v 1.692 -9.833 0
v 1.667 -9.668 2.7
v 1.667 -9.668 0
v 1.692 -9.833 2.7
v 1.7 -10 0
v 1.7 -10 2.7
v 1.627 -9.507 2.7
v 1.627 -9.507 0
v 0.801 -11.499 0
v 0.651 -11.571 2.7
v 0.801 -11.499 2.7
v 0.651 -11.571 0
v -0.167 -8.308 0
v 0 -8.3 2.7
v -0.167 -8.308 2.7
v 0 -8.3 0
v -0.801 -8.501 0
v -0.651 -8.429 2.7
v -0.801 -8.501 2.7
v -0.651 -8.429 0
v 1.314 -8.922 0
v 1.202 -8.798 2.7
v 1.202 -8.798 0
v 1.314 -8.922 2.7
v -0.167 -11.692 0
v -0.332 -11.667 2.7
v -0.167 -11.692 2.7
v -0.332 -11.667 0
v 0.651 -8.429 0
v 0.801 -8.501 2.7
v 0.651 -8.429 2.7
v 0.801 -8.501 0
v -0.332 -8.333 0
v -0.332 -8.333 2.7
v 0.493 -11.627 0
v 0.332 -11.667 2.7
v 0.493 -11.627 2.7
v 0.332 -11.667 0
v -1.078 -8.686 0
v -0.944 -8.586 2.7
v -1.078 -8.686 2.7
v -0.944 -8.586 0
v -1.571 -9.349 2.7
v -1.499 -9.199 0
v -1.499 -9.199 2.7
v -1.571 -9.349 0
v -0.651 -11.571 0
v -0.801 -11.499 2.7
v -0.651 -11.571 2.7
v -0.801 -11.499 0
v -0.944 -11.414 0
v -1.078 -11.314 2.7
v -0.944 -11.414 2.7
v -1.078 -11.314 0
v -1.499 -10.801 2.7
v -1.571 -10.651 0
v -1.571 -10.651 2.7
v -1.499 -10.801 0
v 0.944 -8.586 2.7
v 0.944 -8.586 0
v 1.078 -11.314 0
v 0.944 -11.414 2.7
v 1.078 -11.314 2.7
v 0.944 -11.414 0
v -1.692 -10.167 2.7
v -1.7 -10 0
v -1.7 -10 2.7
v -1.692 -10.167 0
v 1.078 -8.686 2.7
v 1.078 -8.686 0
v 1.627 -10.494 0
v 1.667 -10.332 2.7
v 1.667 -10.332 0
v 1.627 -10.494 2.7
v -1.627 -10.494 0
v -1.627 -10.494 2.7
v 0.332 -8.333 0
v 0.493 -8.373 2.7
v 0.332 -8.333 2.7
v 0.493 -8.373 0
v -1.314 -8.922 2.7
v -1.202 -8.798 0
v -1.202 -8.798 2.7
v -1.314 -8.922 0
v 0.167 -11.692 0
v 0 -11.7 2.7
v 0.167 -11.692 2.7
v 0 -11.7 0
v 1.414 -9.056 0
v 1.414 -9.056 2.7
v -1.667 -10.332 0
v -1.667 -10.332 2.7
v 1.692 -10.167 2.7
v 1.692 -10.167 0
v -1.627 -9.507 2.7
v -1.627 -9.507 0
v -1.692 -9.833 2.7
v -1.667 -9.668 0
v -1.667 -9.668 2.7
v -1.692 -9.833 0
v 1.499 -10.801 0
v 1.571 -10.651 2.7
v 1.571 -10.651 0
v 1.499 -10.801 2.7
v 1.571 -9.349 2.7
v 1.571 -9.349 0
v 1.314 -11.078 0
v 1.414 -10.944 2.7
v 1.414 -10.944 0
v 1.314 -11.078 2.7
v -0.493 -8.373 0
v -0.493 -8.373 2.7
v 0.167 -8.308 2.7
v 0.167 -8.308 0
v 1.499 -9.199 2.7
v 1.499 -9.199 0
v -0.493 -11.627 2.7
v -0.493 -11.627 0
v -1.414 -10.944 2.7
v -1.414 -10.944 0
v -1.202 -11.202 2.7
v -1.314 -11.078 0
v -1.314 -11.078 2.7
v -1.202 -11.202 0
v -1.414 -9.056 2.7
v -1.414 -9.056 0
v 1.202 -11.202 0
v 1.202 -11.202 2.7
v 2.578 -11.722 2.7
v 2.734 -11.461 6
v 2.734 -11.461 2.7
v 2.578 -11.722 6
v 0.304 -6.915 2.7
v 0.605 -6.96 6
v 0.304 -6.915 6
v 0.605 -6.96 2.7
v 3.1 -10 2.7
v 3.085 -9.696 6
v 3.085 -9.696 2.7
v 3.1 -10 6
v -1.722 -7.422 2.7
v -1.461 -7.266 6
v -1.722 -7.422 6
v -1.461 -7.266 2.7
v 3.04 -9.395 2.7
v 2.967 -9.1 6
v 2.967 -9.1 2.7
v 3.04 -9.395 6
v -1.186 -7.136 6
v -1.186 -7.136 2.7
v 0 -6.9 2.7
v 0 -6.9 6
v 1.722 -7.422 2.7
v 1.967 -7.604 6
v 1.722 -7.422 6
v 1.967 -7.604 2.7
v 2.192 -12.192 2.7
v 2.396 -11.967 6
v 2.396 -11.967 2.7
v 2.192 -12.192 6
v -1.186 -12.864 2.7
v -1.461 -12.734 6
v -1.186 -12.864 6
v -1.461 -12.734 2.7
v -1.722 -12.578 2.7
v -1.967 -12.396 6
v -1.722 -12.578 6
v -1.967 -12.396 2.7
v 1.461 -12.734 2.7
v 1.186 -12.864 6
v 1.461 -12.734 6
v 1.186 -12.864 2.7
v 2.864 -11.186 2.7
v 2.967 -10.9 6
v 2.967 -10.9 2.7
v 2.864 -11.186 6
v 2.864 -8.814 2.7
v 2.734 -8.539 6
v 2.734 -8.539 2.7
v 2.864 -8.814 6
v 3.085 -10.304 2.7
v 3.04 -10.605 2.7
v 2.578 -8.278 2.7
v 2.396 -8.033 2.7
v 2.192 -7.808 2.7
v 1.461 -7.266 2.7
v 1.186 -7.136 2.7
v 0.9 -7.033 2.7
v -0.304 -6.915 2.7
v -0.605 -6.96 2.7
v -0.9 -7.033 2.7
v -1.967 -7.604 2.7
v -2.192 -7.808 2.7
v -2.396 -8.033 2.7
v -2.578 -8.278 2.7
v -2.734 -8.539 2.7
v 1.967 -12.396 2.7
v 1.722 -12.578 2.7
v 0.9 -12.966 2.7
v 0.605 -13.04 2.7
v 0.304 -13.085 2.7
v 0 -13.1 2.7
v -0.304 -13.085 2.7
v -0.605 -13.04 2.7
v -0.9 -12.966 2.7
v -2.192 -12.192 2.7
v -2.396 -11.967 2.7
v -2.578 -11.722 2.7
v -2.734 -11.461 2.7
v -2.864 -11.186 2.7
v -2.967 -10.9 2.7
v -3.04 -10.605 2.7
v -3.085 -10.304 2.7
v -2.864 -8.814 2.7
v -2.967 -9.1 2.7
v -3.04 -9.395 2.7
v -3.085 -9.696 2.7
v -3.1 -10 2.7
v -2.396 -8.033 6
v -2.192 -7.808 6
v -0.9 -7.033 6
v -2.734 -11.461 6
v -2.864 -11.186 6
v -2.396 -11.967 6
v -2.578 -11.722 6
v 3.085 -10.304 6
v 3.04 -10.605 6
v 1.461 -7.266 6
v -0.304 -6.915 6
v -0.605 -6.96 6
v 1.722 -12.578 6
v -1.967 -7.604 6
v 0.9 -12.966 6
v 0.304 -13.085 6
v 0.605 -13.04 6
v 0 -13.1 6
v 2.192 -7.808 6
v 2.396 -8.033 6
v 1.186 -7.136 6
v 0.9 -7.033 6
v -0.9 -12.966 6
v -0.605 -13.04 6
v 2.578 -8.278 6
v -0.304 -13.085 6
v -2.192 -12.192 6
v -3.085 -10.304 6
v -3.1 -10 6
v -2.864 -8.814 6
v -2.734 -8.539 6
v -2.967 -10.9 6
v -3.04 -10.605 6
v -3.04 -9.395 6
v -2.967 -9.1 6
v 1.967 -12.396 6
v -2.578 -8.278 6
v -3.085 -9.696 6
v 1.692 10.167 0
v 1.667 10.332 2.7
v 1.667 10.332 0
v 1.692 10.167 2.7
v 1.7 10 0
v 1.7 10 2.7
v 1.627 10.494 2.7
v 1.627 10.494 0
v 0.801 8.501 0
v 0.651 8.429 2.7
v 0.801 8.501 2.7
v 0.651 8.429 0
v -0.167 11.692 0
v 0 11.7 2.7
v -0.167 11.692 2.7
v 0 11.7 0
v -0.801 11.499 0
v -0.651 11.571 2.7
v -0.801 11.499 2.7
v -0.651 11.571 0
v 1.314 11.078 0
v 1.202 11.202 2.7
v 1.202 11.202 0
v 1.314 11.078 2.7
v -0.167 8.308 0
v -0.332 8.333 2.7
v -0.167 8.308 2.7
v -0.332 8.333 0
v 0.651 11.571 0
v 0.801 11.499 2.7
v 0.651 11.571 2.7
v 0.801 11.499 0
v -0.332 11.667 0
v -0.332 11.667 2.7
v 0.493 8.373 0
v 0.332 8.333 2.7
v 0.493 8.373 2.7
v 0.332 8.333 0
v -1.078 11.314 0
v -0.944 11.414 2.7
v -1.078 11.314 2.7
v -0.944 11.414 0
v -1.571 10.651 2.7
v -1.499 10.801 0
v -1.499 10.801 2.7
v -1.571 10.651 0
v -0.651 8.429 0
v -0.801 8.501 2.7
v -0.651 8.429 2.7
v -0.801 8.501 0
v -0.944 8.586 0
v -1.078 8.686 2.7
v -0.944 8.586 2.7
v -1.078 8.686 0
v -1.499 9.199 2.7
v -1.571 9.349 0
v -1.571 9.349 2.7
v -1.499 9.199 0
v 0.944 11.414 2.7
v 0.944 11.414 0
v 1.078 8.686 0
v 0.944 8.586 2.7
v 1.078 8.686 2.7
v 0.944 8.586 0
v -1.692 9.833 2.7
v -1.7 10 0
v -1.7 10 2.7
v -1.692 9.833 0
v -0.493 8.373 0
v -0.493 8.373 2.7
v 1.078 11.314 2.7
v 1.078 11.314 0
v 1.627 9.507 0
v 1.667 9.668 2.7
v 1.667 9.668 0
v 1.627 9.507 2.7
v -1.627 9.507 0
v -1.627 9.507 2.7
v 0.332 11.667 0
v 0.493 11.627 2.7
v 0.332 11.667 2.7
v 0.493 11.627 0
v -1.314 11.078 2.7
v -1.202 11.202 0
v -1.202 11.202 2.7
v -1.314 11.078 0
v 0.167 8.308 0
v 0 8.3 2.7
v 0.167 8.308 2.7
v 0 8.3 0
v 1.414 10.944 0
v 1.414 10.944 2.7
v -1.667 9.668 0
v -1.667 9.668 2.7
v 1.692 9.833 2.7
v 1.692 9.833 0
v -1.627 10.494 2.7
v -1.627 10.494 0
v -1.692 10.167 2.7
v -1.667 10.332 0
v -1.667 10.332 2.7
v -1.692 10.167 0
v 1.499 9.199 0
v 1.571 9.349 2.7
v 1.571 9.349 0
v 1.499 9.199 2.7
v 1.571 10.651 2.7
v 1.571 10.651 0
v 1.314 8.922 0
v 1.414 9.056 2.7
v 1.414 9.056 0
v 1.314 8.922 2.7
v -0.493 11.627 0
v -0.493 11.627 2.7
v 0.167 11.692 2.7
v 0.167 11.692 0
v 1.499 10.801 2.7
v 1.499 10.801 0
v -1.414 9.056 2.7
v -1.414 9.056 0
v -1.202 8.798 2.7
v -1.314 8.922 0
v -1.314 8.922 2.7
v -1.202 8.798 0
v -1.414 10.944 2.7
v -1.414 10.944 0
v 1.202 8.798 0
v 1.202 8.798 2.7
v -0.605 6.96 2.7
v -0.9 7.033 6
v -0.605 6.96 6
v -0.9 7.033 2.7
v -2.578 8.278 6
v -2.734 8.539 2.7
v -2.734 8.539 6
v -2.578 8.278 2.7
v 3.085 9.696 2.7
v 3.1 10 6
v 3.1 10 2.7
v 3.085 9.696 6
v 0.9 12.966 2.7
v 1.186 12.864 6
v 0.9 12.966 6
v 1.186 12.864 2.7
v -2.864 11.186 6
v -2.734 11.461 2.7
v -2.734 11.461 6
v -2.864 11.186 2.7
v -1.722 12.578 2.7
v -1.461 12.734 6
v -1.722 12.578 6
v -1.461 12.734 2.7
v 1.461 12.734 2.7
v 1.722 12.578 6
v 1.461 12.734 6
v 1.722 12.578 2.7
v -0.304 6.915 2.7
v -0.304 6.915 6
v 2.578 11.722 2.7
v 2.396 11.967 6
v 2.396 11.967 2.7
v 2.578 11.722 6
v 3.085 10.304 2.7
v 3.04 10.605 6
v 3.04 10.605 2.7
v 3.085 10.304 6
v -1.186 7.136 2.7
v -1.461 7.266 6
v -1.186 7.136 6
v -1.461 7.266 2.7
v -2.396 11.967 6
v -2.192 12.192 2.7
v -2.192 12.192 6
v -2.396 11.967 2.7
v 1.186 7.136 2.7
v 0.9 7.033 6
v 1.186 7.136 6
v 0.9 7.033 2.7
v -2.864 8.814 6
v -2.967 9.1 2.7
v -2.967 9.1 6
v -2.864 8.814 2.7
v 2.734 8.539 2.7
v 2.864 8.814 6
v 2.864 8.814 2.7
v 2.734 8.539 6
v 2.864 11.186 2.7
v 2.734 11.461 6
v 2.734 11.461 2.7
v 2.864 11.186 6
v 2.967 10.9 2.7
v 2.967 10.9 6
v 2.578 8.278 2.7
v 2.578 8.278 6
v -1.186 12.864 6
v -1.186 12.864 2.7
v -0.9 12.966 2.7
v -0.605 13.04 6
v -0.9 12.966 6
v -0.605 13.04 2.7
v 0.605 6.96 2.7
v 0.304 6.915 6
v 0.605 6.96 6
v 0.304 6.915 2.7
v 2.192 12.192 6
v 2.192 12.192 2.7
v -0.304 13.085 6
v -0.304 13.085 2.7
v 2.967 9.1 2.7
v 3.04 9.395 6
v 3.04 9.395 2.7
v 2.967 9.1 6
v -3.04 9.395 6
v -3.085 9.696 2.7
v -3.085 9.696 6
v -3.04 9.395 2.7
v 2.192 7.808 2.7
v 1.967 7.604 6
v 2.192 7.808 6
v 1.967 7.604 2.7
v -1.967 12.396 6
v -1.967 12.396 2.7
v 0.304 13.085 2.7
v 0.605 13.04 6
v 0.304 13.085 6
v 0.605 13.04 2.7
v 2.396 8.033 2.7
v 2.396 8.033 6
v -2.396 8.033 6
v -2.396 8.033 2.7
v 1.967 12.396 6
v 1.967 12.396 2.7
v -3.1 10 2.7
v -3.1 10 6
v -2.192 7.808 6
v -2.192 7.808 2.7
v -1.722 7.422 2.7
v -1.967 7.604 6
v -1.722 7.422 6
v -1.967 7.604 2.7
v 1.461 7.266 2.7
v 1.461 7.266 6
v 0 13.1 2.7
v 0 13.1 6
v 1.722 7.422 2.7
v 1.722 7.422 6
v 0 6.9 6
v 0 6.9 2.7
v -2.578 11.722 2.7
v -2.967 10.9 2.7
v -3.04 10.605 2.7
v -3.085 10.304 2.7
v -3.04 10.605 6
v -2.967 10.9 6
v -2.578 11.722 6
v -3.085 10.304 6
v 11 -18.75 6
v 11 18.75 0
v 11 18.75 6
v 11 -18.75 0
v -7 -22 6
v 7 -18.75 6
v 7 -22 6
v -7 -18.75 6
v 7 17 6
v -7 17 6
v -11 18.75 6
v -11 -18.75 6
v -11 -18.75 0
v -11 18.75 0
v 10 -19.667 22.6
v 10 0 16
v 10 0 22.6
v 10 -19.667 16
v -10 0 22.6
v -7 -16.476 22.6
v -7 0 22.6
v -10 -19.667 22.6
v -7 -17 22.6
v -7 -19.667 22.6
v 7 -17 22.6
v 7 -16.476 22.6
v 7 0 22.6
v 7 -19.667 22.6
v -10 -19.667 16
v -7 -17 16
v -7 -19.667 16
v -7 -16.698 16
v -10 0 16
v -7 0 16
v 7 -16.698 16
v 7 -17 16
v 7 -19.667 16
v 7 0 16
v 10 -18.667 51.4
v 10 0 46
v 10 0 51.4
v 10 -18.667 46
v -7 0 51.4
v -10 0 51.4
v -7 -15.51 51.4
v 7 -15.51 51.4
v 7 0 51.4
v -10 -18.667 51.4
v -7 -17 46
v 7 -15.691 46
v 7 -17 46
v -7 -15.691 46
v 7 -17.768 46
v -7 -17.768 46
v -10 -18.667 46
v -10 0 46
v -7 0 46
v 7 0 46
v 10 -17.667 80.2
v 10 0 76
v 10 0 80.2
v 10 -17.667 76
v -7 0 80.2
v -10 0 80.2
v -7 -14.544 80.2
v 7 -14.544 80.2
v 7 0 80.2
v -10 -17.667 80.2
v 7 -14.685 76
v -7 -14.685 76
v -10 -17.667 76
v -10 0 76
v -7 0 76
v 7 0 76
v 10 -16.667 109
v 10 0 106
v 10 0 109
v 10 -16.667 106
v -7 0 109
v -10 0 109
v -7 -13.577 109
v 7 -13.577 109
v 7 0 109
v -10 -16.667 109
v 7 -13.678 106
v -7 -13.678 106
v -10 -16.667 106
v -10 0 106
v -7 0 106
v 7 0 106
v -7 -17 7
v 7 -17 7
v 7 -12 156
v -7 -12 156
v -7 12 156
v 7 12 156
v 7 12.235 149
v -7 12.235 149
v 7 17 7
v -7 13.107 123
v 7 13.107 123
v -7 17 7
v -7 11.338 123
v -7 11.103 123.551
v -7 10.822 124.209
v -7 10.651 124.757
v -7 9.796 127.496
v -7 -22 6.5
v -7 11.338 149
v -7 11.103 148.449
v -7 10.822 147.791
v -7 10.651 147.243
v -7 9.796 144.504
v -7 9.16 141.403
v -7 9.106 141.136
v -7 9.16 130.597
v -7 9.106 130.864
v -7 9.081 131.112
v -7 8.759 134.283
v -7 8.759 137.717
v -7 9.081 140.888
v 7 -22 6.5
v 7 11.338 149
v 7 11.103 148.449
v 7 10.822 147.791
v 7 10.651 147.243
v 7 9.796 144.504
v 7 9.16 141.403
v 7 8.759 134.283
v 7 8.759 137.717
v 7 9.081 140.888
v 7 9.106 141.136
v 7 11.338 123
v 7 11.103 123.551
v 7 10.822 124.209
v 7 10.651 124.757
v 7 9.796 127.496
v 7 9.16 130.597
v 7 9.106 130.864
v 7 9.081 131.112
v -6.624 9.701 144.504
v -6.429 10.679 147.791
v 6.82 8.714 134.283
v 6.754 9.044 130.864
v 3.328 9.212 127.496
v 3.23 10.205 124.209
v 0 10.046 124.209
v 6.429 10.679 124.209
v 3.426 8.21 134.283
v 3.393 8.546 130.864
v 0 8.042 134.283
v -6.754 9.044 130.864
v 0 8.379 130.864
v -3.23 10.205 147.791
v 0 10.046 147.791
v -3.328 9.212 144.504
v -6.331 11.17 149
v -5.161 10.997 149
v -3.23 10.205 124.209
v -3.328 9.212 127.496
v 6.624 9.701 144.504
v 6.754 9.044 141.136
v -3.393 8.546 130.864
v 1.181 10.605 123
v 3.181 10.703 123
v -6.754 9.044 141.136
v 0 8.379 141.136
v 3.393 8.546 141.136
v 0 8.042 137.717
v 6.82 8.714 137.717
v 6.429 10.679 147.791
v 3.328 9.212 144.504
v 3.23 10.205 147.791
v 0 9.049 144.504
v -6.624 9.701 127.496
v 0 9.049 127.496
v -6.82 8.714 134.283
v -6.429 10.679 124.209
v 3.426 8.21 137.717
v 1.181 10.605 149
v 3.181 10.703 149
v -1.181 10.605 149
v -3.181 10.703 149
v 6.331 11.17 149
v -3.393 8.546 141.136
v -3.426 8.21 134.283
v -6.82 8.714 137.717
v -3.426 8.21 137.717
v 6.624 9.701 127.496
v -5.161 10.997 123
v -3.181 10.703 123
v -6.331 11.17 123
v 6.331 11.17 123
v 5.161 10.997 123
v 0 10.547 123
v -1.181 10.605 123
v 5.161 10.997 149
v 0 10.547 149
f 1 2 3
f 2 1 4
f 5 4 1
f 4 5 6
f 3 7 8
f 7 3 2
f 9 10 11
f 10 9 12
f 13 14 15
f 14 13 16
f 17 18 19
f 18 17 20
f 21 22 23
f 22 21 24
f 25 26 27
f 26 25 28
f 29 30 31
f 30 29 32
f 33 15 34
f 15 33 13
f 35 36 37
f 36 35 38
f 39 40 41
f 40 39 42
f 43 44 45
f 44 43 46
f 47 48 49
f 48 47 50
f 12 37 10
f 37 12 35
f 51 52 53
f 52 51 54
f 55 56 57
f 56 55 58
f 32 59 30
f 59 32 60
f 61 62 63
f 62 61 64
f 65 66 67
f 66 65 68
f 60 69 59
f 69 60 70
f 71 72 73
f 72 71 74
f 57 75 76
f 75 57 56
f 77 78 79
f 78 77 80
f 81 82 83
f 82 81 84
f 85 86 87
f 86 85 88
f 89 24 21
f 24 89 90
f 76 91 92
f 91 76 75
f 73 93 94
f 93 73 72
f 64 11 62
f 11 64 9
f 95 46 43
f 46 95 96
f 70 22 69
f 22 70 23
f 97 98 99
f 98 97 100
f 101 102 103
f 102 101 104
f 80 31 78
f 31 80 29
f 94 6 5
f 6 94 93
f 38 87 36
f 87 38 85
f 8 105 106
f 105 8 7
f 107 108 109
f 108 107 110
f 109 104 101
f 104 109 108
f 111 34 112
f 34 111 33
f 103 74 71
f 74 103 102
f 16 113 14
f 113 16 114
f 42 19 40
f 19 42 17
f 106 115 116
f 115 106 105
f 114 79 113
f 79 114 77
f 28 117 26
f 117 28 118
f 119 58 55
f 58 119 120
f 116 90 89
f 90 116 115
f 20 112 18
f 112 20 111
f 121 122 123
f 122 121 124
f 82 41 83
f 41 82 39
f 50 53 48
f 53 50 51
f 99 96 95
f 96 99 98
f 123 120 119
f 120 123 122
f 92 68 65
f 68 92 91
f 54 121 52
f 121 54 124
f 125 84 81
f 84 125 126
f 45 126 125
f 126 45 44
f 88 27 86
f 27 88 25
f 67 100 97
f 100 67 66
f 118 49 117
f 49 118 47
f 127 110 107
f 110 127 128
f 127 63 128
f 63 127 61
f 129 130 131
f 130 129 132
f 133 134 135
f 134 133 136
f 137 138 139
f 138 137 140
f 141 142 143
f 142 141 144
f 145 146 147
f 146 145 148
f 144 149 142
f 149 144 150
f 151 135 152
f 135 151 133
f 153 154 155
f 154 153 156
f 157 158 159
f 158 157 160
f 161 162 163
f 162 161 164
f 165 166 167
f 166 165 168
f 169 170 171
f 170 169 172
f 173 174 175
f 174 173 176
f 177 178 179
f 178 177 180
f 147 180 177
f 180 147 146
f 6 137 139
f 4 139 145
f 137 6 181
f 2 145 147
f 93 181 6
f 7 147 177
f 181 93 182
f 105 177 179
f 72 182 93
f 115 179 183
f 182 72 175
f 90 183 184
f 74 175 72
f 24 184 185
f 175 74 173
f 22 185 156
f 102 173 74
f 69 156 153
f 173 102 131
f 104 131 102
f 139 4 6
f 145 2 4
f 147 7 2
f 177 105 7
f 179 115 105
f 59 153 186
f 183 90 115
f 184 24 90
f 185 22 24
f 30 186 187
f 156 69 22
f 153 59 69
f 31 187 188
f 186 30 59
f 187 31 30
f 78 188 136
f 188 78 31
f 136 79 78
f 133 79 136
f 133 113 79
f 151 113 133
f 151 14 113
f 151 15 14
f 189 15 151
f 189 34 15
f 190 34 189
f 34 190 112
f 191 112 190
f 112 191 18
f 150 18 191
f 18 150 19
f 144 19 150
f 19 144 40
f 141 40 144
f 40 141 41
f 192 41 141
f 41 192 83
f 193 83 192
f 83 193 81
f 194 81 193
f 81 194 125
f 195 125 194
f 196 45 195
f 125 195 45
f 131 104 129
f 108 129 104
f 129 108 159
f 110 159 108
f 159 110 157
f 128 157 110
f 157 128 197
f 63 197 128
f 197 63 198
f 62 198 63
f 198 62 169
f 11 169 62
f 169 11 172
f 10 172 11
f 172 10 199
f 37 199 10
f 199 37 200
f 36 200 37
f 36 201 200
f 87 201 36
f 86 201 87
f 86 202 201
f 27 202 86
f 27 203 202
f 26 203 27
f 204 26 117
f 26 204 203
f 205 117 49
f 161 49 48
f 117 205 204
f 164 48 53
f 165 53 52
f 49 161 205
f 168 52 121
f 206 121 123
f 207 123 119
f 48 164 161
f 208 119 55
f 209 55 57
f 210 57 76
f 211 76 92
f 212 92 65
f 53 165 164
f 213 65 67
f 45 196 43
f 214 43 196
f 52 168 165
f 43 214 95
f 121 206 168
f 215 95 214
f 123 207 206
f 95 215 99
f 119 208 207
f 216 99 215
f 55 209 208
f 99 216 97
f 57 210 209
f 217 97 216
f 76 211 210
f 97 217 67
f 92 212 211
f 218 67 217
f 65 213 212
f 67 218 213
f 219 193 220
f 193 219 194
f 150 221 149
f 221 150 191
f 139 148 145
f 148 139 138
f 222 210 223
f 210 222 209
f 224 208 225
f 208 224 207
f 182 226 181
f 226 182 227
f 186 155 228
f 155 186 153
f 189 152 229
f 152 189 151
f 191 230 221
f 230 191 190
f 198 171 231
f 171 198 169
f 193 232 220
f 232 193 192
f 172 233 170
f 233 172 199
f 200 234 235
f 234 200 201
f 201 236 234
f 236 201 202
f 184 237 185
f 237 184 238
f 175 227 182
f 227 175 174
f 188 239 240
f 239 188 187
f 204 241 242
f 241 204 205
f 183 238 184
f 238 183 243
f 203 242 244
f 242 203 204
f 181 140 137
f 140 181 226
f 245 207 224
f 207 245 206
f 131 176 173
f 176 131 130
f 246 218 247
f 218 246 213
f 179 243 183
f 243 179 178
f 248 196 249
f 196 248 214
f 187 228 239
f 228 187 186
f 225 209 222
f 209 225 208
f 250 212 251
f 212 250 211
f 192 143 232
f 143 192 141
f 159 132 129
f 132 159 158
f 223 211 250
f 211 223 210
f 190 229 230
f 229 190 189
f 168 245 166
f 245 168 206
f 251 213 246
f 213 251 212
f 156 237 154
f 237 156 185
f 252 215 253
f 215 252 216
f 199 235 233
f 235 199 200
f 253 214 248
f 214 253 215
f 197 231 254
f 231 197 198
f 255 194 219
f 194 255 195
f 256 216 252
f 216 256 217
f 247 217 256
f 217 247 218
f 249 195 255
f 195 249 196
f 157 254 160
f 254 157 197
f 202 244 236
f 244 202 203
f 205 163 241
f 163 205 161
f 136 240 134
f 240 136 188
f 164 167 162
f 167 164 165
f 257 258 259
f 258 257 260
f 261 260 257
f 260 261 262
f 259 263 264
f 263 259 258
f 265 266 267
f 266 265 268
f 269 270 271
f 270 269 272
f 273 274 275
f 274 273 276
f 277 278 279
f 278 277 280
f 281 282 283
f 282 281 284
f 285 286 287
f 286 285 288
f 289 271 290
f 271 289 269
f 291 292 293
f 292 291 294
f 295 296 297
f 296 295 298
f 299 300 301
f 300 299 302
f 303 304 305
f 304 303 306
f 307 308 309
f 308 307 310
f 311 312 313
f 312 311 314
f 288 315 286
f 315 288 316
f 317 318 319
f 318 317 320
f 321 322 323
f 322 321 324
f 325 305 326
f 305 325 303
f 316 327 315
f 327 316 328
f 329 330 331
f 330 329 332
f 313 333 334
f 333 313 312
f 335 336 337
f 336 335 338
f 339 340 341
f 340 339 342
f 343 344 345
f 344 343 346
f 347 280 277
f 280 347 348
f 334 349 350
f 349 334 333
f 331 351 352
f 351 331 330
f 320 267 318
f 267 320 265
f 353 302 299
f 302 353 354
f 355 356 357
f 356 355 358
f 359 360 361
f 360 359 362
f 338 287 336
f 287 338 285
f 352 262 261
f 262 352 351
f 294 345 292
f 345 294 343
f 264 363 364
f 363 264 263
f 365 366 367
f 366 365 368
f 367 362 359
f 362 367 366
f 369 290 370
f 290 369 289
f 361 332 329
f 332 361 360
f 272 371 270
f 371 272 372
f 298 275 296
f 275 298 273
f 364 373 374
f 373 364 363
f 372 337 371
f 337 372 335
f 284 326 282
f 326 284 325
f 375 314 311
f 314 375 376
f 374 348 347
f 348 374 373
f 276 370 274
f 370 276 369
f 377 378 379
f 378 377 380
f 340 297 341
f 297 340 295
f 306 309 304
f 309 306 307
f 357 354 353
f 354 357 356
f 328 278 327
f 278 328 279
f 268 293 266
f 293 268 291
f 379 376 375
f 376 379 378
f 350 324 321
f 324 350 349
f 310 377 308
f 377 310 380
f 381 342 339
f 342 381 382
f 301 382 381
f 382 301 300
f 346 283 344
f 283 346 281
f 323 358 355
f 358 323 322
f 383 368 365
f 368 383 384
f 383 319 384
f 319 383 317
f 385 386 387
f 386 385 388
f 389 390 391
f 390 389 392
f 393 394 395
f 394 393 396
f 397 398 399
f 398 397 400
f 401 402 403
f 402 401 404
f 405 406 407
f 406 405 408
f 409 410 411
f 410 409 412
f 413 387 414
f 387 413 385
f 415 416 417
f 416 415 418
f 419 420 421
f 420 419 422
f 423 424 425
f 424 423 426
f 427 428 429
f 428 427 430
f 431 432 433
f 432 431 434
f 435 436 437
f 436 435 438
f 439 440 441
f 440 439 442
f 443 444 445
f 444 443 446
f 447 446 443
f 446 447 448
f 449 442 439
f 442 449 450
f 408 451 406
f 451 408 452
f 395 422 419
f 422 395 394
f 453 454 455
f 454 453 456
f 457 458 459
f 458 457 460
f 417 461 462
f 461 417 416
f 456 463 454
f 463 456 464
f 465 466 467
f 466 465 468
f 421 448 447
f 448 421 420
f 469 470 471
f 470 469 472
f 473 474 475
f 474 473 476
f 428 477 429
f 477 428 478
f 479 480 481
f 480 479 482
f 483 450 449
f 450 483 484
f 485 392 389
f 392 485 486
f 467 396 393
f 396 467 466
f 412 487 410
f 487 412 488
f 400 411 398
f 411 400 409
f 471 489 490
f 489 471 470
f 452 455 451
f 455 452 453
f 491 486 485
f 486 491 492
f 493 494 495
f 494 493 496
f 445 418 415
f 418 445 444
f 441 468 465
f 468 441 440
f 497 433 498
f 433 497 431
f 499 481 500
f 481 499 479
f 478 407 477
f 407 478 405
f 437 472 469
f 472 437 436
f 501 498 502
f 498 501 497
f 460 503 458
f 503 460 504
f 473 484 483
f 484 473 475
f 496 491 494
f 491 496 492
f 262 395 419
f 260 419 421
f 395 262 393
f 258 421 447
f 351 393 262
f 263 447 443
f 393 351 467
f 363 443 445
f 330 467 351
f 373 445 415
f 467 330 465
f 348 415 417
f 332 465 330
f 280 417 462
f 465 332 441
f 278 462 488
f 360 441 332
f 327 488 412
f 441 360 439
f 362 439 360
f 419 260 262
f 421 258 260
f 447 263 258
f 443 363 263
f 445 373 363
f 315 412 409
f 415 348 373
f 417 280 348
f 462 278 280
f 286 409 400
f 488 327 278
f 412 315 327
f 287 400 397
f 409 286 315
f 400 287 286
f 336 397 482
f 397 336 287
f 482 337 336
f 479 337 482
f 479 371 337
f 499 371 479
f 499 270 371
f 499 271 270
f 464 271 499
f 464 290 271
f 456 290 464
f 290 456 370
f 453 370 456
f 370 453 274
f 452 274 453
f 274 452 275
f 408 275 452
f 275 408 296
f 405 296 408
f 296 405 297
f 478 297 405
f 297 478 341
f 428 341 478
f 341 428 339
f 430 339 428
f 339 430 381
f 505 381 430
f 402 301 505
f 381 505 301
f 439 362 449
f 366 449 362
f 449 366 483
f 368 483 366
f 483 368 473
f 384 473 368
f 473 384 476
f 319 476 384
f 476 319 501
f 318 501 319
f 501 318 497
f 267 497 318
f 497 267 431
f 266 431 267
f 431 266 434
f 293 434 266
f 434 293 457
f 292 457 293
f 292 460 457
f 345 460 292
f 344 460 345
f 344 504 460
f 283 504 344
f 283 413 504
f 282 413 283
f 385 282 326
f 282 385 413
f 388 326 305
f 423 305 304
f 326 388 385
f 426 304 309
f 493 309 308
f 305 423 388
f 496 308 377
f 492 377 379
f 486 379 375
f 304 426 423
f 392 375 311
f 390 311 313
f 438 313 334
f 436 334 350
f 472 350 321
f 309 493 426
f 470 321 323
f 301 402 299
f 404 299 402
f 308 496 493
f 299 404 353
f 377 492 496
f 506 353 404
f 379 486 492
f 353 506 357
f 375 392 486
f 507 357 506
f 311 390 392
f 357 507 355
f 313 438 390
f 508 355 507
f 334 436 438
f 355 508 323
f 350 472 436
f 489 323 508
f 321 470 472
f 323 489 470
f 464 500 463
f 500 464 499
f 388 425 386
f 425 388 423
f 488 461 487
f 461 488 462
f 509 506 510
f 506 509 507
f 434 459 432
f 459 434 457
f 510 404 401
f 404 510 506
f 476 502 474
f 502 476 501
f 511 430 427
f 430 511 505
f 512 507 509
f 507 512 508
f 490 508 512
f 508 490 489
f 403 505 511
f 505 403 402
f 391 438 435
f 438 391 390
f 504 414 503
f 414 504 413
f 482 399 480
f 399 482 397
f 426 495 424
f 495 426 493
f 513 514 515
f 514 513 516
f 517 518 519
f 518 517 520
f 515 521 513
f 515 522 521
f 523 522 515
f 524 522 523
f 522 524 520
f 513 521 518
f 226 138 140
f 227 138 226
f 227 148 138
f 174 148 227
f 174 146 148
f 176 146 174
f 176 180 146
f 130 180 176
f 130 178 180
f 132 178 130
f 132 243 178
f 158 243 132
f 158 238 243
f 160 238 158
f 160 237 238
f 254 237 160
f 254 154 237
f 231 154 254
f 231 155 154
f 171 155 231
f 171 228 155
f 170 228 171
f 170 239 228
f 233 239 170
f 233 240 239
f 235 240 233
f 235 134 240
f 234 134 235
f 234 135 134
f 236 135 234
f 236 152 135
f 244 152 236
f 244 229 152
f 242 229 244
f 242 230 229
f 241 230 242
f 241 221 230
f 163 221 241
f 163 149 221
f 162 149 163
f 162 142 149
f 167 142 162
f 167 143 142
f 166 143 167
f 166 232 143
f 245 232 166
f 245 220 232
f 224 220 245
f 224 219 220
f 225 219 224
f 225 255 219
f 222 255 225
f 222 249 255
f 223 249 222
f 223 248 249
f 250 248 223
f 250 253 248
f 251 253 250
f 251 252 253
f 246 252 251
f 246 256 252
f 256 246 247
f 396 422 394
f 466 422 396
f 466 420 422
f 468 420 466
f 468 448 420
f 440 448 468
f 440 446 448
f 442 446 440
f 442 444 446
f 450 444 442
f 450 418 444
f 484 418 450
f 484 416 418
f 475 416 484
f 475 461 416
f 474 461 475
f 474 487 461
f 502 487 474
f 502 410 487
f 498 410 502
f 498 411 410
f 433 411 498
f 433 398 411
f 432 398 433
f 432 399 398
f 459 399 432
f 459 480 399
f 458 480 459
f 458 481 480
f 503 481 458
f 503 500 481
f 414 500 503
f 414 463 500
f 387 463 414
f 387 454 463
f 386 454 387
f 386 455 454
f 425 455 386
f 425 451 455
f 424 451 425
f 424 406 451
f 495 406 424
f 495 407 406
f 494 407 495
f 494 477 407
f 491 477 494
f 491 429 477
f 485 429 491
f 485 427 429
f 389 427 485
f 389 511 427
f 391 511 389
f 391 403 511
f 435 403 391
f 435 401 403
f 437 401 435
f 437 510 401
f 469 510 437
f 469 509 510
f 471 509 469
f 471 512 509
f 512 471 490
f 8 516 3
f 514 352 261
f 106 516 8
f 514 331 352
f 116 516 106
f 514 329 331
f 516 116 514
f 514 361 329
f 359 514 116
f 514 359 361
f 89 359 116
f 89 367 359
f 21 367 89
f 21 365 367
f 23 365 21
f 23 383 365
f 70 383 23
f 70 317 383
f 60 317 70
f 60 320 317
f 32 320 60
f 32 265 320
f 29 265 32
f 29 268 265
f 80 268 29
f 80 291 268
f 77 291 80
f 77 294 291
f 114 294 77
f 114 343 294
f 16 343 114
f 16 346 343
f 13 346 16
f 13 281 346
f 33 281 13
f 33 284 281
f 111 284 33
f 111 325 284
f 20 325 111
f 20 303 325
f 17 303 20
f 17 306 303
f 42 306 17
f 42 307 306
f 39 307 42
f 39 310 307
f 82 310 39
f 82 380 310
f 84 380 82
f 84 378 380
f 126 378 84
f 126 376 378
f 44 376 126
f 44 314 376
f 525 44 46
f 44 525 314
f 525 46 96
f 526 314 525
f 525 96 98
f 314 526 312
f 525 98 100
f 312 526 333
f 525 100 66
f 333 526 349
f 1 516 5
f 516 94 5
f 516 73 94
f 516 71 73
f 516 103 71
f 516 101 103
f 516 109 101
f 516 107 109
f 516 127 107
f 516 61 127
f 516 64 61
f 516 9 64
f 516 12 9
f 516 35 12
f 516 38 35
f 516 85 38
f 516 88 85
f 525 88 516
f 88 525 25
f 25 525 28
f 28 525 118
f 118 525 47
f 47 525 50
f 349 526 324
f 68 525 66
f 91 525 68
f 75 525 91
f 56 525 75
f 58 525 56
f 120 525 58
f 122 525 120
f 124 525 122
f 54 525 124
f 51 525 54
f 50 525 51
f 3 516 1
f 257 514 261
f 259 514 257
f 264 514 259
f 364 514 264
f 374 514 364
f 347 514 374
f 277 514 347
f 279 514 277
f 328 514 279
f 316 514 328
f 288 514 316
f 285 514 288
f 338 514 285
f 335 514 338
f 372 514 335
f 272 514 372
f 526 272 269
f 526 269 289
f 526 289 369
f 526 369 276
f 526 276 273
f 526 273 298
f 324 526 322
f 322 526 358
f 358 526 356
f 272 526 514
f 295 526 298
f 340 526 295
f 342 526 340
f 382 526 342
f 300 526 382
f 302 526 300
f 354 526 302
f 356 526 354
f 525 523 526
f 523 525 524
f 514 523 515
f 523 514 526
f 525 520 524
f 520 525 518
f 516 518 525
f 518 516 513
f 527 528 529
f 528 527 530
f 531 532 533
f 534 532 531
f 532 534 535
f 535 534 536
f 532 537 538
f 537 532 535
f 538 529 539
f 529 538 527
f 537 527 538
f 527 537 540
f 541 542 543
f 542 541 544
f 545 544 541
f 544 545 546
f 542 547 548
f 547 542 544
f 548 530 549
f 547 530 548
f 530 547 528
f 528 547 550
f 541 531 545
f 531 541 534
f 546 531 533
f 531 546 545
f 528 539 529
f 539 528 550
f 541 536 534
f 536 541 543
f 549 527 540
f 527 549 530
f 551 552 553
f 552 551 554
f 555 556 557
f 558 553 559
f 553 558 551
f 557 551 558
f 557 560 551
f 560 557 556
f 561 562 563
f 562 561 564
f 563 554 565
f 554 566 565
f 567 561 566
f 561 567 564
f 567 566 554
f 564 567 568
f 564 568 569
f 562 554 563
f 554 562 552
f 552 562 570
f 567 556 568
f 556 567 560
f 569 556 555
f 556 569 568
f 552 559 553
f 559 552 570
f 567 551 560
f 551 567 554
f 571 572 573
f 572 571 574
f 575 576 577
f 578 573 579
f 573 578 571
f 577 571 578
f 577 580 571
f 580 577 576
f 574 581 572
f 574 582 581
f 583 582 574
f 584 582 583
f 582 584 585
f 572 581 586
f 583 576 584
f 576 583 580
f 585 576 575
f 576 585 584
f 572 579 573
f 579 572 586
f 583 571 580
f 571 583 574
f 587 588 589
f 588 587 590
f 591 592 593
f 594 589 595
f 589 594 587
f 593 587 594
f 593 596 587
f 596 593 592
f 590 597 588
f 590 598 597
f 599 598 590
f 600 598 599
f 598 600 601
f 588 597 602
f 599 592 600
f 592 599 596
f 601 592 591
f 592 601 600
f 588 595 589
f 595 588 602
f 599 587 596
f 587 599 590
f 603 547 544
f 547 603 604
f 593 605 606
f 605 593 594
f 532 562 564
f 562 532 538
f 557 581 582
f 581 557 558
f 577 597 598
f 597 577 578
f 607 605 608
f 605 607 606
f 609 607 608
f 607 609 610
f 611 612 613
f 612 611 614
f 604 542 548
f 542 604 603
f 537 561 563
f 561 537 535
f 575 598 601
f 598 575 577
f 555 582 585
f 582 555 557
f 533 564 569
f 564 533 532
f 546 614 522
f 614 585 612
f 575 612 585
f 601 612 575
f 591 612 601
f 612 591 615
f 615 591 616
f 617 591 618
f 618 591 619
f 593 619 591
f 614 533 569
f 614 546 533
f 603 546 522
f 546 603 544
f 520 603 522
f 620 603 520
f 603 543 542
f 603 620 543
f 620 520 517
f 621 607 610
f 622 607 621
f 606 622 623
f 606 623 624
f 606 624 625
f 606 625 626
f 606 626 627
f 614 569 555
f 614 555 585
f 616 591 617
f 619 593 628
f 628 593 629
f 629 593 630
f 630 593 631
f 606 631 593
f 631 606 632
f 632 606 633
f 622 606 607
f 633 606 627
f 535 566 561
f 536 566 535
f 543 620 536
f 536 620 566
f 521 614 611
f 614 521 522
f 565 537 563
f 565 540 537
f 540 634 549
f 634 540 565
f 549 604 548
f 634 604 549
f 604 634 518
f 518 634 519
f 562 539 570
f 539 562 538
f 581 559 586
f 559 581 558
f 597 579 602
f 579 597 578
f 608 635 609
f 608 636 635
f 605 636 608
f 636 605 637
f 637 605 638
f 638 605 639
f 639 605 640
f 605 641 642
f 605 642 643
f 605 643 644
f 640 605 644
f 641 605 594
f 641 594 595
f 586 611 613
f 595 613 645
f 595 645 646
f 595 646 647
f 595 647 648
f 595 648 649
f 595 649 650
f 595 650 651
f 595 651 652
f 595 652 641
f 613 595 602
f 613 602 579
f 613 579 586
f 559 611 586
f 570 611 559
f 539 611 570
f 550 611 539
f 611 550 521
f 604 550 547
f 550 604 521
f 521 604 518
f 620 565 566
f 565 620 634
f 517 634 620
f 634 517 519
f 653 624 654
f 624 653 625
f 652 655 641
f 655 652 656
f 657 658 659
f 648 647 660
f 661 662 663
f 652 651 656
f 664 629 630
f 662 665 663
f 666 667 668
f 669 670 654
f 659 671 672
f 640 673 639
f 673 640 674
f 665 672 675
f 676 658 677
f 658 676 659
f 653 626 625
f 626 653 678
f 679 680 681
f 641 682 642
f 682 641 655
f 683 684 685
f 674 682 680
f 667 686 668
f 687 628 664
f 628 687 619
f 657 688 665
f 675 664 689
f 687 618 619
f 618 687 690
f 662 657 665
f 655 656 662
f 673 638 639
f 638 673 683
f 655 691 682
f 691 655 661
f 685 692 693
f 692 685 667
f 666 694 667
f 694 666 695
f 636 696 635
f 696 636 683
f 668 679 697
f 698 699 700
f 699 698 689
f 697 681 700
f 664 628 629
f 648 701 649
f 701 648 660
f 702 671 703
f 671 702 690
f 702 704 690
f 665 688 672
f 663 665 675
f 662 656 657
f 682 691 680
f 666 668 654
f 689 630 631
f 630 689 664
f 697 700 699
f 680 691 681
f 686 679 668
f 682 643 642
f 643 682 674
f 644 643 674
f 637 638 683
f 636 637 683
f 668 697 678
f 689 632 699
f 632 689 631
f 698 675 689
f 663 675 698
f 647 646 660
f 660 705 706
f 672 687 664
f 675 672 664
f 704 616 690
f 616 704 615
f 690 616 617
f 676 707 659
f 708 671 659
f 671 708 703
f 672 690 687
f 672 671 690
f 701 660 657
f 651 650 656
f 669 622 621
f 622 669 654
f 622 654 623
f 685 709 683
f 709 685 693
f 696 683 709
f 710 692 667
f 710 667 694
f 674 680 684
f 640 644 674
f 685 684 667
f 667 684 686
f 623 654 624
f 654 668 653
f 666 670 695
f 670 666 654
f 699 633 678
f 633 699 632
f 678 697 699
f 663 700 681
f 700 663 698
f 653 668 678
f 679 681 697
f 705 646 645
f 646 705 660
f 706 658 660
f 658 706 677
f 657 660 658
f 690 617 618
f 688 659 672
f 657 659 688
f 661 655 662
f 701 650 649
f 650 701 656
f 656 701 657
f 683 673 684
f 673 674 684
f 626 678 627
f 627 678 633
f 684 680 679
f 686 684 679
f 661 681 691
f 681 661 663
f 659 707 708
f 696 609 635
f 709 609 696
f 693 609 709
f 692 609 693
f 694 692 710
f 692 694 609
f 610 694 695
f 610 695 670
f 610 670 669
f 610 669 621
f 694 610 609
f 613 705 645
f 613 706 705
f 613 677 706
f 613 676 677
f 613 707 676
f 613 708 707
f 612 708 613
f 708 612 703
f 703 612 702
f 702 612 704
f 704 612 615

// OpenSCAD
// ===================================================================
// Robotiq 2F-85 finger EXTENSION FIN
// for the Kinova Gen3 throwing rig -- "fins" as in MC-PILOT (Turcato et al.)
//
// WHY
//   1. Move the grasp point 0.12 m -> 0.27 m from the flange (+150 mm), to
//      match throw_pose_table_ext15.npy and the checkpoints
//      results_kinetic_chain_gen3_ext15{,_narrow}/1. Those are trained for a
//      0.27 m TCP and run_hardware_throw.py REFUSES a mismatched
//      --tool_offset_z, so the built length has to match the number.
//
//   2. Break the encompassing grip. MEASURED 2026-09-09: the bare 2F-85 holds
//      a 67 mm tennis ball in a deep cage -- still caged at 8.33% closed, so
//      the ball is not free until ~175-250 ms after t_r, by which point the
//      palm is vertical (z_tool . up = 0.999) and the ball drops back onto the
//      gripper instead of flying. Hence the TIP IS A SHALLOW DISH, not a cup:
//      all contact stays BELOW the ball's equator, so it lifts straight out
//      the instant the fins part. Deepening this dish would undo the point of
//      the part.
//
//   3. Grip force cannot be softened in software -- GRIPPER_FORCE mode is
//      rejected by this arm's firmware ("Force command mode not supported",
//      measured 2026-09-09). So the beam has to take full grip load: it is
//      DEEP in the closing direction (Y) and ribbed. Do not flatten it.
//
// >>> UNVERIFIED: the pad mount below is a PLACEHOLDER. <<<
//   The only 2F-85 geometry on disk is primitive collision geometry from an
//   uncertain generic-gripper source, explicitly not authoritative. MEASURE
//   the real pad -- bolt spacing, bolt size, footprint -- and set PAD_*.
// ===================================================================

/* [Extension] */
FIN_LENGTH   = 150;    // mm. MUST equal (tool_offset_z - 0.12 m) in mm.

/* [Beam] */
BEAM_W       = 14;     // across the finger
BEAM_D_ROOT  = 34;     // depth along the CLOSING direction -- the bending axis
BEAM_D_TIP   = 24;

/* [Pad mount -- PLACEHOLDER, MEASURE FIRST] */
PAD_W        = 22;
PAD_H        = 37.5;
PAD_T        = 6;
BOLT_SPACING = 20;
BOLT_D       = 3.4;    // M3 clearance
BOLT_HEAD_D  = 6.2;
BOLT_HEAD_H  = 3.2;

/* [Ball cradle] */
BALL_D       = 67;     // tennis; a 40 mm TT ball also seats in this dish
DISH_DEPTH   = 4;      // SHALLOW BY DESIGN -- see note 2 above
DISH_R       = 35;     // slightly proud of the ball radius (33.5)
DISH_L       = 26;     // pocket length -- bond the TPU/rubber facing in here

/* [Stiffening] */
RIB_T        = 3;
RIB_N        = 4;

DISH_Z = PAD_T + FIN_LENGTH - 20;   // dish centre height

$fn = 64;

module mount_plate() {
    difference() {
        translate([-PAD_W/2, -PAD_H/2, 0]) cube([PAD_W, PAD_H, PAD_T]);
        for (s = [-1, 1])
            translate([0, s*BOLT_SPACING/2, -0.1]) {
                cylinder(d = BOLT_D, h = PAD_T + 0.2);
                translate([0, 0, PAD_T - BOLT_HEAD_H])
                    cylinder(d = BOLT_HEAD_D, h = BOLT_HEAD_H + 0.2);
            }
    }
}

module beam() {
    hull() {
        translate([-BEAM_W/2, -BEAM_D_ROOT/2, PAD_T])
            cube([BEAM_W, BEAM_D_ROOT, 1]);
        translate([-BEAM_W/2, -BEAM_D_TIP/2, PAD_T + FIN_LENGTH - 1])
            cube([BEAM_W, BEAM_D_TIP, 1]);
    }
}

// Stiffening MUST NOT touch the +Y gripping face. A full collar puts rib
// edges where the ball sits, which is the encompassing-cage geometry this
// part exists to remove -- caught in the first render. Gussets run on the
// OUTER (-Y) face and the two side faces only, and they deepen the section in
// Y, which is the axis grip force bends about.
module gussets() {
    for (i = [0 : RIB_N - 1]) {
        f  = i / max(RIB_N - 1, 1);
        z  = PAD_T + 10 + f * (FIN_LENGTH - 60);
        d  = BEAM_D_ROOT + (BEAM_D_TIP - BEAM_D_ROOT) * (z - PAD_T)/FIN_LENGTH;
        h  = RIB_T * (2.2 - 1.2*f);            // taller near the root
        // outer face only: spans -d/2-RIB_T .. +d/2 (stops short of +Y face)
        translate([-BEAM_W/2 - RIB_T, -d/2 - RIB_T, z])
            cube([BEAM_W + 2*RIB_T, d/2 + RIB_T, h]);
    }
}

// Root gusset: peak bending moment is at the mount, taper it out.
module root_gusset() {
    hull() {
        translate([-BEAM_W/2, -BEAM_D_ROOT/2 - 5, PAD_T])
            cube([BEAM_W, 5, 0.5]);
        translate([-BEAM_W/2, -BEAM_D_ROOT/2 - 0.5, PAD_T + 42])
            cube([BEAM_W, 0.5, 0.5]);
    }
}

// Gripping face is +Y (toward the opposing fin).
//
// The dish must be a LOCALISED pocket. A ball-radius sphere cutting a face
// that stands 12 mm proud scoops 53 mm of beam (caught in the second render),
// which both weakens the section and re-wraps the ball. Intersecting with a
// box confines it to DISH_L, keeping the ball-matching curvature without the
// long scoop. Bond the compliant facing straight into this pocket -- a
// separate rectangular recess just overlapped it and added nothing.
module tip_features() {
    intersection() {
        translate([0, BEAM_D_TIP/2 + DISH_R - DISH_DEPTH, DISH_Z])
            sphere(r = DISH_R);
        translate([-BEAM_W, BEAM_D_TIP/2 - DISH_DEPTH, DISH_Z - DISH_L/2])
            cube([2*BEAM_W, DISH_DEPTH + 2, DISH_L]);
    }
}

module fin() {
    difference() {
        union() { mount_plate(); beam(); gussets(); root_gusset(); }
        tip_features();
    }
}

fin();
